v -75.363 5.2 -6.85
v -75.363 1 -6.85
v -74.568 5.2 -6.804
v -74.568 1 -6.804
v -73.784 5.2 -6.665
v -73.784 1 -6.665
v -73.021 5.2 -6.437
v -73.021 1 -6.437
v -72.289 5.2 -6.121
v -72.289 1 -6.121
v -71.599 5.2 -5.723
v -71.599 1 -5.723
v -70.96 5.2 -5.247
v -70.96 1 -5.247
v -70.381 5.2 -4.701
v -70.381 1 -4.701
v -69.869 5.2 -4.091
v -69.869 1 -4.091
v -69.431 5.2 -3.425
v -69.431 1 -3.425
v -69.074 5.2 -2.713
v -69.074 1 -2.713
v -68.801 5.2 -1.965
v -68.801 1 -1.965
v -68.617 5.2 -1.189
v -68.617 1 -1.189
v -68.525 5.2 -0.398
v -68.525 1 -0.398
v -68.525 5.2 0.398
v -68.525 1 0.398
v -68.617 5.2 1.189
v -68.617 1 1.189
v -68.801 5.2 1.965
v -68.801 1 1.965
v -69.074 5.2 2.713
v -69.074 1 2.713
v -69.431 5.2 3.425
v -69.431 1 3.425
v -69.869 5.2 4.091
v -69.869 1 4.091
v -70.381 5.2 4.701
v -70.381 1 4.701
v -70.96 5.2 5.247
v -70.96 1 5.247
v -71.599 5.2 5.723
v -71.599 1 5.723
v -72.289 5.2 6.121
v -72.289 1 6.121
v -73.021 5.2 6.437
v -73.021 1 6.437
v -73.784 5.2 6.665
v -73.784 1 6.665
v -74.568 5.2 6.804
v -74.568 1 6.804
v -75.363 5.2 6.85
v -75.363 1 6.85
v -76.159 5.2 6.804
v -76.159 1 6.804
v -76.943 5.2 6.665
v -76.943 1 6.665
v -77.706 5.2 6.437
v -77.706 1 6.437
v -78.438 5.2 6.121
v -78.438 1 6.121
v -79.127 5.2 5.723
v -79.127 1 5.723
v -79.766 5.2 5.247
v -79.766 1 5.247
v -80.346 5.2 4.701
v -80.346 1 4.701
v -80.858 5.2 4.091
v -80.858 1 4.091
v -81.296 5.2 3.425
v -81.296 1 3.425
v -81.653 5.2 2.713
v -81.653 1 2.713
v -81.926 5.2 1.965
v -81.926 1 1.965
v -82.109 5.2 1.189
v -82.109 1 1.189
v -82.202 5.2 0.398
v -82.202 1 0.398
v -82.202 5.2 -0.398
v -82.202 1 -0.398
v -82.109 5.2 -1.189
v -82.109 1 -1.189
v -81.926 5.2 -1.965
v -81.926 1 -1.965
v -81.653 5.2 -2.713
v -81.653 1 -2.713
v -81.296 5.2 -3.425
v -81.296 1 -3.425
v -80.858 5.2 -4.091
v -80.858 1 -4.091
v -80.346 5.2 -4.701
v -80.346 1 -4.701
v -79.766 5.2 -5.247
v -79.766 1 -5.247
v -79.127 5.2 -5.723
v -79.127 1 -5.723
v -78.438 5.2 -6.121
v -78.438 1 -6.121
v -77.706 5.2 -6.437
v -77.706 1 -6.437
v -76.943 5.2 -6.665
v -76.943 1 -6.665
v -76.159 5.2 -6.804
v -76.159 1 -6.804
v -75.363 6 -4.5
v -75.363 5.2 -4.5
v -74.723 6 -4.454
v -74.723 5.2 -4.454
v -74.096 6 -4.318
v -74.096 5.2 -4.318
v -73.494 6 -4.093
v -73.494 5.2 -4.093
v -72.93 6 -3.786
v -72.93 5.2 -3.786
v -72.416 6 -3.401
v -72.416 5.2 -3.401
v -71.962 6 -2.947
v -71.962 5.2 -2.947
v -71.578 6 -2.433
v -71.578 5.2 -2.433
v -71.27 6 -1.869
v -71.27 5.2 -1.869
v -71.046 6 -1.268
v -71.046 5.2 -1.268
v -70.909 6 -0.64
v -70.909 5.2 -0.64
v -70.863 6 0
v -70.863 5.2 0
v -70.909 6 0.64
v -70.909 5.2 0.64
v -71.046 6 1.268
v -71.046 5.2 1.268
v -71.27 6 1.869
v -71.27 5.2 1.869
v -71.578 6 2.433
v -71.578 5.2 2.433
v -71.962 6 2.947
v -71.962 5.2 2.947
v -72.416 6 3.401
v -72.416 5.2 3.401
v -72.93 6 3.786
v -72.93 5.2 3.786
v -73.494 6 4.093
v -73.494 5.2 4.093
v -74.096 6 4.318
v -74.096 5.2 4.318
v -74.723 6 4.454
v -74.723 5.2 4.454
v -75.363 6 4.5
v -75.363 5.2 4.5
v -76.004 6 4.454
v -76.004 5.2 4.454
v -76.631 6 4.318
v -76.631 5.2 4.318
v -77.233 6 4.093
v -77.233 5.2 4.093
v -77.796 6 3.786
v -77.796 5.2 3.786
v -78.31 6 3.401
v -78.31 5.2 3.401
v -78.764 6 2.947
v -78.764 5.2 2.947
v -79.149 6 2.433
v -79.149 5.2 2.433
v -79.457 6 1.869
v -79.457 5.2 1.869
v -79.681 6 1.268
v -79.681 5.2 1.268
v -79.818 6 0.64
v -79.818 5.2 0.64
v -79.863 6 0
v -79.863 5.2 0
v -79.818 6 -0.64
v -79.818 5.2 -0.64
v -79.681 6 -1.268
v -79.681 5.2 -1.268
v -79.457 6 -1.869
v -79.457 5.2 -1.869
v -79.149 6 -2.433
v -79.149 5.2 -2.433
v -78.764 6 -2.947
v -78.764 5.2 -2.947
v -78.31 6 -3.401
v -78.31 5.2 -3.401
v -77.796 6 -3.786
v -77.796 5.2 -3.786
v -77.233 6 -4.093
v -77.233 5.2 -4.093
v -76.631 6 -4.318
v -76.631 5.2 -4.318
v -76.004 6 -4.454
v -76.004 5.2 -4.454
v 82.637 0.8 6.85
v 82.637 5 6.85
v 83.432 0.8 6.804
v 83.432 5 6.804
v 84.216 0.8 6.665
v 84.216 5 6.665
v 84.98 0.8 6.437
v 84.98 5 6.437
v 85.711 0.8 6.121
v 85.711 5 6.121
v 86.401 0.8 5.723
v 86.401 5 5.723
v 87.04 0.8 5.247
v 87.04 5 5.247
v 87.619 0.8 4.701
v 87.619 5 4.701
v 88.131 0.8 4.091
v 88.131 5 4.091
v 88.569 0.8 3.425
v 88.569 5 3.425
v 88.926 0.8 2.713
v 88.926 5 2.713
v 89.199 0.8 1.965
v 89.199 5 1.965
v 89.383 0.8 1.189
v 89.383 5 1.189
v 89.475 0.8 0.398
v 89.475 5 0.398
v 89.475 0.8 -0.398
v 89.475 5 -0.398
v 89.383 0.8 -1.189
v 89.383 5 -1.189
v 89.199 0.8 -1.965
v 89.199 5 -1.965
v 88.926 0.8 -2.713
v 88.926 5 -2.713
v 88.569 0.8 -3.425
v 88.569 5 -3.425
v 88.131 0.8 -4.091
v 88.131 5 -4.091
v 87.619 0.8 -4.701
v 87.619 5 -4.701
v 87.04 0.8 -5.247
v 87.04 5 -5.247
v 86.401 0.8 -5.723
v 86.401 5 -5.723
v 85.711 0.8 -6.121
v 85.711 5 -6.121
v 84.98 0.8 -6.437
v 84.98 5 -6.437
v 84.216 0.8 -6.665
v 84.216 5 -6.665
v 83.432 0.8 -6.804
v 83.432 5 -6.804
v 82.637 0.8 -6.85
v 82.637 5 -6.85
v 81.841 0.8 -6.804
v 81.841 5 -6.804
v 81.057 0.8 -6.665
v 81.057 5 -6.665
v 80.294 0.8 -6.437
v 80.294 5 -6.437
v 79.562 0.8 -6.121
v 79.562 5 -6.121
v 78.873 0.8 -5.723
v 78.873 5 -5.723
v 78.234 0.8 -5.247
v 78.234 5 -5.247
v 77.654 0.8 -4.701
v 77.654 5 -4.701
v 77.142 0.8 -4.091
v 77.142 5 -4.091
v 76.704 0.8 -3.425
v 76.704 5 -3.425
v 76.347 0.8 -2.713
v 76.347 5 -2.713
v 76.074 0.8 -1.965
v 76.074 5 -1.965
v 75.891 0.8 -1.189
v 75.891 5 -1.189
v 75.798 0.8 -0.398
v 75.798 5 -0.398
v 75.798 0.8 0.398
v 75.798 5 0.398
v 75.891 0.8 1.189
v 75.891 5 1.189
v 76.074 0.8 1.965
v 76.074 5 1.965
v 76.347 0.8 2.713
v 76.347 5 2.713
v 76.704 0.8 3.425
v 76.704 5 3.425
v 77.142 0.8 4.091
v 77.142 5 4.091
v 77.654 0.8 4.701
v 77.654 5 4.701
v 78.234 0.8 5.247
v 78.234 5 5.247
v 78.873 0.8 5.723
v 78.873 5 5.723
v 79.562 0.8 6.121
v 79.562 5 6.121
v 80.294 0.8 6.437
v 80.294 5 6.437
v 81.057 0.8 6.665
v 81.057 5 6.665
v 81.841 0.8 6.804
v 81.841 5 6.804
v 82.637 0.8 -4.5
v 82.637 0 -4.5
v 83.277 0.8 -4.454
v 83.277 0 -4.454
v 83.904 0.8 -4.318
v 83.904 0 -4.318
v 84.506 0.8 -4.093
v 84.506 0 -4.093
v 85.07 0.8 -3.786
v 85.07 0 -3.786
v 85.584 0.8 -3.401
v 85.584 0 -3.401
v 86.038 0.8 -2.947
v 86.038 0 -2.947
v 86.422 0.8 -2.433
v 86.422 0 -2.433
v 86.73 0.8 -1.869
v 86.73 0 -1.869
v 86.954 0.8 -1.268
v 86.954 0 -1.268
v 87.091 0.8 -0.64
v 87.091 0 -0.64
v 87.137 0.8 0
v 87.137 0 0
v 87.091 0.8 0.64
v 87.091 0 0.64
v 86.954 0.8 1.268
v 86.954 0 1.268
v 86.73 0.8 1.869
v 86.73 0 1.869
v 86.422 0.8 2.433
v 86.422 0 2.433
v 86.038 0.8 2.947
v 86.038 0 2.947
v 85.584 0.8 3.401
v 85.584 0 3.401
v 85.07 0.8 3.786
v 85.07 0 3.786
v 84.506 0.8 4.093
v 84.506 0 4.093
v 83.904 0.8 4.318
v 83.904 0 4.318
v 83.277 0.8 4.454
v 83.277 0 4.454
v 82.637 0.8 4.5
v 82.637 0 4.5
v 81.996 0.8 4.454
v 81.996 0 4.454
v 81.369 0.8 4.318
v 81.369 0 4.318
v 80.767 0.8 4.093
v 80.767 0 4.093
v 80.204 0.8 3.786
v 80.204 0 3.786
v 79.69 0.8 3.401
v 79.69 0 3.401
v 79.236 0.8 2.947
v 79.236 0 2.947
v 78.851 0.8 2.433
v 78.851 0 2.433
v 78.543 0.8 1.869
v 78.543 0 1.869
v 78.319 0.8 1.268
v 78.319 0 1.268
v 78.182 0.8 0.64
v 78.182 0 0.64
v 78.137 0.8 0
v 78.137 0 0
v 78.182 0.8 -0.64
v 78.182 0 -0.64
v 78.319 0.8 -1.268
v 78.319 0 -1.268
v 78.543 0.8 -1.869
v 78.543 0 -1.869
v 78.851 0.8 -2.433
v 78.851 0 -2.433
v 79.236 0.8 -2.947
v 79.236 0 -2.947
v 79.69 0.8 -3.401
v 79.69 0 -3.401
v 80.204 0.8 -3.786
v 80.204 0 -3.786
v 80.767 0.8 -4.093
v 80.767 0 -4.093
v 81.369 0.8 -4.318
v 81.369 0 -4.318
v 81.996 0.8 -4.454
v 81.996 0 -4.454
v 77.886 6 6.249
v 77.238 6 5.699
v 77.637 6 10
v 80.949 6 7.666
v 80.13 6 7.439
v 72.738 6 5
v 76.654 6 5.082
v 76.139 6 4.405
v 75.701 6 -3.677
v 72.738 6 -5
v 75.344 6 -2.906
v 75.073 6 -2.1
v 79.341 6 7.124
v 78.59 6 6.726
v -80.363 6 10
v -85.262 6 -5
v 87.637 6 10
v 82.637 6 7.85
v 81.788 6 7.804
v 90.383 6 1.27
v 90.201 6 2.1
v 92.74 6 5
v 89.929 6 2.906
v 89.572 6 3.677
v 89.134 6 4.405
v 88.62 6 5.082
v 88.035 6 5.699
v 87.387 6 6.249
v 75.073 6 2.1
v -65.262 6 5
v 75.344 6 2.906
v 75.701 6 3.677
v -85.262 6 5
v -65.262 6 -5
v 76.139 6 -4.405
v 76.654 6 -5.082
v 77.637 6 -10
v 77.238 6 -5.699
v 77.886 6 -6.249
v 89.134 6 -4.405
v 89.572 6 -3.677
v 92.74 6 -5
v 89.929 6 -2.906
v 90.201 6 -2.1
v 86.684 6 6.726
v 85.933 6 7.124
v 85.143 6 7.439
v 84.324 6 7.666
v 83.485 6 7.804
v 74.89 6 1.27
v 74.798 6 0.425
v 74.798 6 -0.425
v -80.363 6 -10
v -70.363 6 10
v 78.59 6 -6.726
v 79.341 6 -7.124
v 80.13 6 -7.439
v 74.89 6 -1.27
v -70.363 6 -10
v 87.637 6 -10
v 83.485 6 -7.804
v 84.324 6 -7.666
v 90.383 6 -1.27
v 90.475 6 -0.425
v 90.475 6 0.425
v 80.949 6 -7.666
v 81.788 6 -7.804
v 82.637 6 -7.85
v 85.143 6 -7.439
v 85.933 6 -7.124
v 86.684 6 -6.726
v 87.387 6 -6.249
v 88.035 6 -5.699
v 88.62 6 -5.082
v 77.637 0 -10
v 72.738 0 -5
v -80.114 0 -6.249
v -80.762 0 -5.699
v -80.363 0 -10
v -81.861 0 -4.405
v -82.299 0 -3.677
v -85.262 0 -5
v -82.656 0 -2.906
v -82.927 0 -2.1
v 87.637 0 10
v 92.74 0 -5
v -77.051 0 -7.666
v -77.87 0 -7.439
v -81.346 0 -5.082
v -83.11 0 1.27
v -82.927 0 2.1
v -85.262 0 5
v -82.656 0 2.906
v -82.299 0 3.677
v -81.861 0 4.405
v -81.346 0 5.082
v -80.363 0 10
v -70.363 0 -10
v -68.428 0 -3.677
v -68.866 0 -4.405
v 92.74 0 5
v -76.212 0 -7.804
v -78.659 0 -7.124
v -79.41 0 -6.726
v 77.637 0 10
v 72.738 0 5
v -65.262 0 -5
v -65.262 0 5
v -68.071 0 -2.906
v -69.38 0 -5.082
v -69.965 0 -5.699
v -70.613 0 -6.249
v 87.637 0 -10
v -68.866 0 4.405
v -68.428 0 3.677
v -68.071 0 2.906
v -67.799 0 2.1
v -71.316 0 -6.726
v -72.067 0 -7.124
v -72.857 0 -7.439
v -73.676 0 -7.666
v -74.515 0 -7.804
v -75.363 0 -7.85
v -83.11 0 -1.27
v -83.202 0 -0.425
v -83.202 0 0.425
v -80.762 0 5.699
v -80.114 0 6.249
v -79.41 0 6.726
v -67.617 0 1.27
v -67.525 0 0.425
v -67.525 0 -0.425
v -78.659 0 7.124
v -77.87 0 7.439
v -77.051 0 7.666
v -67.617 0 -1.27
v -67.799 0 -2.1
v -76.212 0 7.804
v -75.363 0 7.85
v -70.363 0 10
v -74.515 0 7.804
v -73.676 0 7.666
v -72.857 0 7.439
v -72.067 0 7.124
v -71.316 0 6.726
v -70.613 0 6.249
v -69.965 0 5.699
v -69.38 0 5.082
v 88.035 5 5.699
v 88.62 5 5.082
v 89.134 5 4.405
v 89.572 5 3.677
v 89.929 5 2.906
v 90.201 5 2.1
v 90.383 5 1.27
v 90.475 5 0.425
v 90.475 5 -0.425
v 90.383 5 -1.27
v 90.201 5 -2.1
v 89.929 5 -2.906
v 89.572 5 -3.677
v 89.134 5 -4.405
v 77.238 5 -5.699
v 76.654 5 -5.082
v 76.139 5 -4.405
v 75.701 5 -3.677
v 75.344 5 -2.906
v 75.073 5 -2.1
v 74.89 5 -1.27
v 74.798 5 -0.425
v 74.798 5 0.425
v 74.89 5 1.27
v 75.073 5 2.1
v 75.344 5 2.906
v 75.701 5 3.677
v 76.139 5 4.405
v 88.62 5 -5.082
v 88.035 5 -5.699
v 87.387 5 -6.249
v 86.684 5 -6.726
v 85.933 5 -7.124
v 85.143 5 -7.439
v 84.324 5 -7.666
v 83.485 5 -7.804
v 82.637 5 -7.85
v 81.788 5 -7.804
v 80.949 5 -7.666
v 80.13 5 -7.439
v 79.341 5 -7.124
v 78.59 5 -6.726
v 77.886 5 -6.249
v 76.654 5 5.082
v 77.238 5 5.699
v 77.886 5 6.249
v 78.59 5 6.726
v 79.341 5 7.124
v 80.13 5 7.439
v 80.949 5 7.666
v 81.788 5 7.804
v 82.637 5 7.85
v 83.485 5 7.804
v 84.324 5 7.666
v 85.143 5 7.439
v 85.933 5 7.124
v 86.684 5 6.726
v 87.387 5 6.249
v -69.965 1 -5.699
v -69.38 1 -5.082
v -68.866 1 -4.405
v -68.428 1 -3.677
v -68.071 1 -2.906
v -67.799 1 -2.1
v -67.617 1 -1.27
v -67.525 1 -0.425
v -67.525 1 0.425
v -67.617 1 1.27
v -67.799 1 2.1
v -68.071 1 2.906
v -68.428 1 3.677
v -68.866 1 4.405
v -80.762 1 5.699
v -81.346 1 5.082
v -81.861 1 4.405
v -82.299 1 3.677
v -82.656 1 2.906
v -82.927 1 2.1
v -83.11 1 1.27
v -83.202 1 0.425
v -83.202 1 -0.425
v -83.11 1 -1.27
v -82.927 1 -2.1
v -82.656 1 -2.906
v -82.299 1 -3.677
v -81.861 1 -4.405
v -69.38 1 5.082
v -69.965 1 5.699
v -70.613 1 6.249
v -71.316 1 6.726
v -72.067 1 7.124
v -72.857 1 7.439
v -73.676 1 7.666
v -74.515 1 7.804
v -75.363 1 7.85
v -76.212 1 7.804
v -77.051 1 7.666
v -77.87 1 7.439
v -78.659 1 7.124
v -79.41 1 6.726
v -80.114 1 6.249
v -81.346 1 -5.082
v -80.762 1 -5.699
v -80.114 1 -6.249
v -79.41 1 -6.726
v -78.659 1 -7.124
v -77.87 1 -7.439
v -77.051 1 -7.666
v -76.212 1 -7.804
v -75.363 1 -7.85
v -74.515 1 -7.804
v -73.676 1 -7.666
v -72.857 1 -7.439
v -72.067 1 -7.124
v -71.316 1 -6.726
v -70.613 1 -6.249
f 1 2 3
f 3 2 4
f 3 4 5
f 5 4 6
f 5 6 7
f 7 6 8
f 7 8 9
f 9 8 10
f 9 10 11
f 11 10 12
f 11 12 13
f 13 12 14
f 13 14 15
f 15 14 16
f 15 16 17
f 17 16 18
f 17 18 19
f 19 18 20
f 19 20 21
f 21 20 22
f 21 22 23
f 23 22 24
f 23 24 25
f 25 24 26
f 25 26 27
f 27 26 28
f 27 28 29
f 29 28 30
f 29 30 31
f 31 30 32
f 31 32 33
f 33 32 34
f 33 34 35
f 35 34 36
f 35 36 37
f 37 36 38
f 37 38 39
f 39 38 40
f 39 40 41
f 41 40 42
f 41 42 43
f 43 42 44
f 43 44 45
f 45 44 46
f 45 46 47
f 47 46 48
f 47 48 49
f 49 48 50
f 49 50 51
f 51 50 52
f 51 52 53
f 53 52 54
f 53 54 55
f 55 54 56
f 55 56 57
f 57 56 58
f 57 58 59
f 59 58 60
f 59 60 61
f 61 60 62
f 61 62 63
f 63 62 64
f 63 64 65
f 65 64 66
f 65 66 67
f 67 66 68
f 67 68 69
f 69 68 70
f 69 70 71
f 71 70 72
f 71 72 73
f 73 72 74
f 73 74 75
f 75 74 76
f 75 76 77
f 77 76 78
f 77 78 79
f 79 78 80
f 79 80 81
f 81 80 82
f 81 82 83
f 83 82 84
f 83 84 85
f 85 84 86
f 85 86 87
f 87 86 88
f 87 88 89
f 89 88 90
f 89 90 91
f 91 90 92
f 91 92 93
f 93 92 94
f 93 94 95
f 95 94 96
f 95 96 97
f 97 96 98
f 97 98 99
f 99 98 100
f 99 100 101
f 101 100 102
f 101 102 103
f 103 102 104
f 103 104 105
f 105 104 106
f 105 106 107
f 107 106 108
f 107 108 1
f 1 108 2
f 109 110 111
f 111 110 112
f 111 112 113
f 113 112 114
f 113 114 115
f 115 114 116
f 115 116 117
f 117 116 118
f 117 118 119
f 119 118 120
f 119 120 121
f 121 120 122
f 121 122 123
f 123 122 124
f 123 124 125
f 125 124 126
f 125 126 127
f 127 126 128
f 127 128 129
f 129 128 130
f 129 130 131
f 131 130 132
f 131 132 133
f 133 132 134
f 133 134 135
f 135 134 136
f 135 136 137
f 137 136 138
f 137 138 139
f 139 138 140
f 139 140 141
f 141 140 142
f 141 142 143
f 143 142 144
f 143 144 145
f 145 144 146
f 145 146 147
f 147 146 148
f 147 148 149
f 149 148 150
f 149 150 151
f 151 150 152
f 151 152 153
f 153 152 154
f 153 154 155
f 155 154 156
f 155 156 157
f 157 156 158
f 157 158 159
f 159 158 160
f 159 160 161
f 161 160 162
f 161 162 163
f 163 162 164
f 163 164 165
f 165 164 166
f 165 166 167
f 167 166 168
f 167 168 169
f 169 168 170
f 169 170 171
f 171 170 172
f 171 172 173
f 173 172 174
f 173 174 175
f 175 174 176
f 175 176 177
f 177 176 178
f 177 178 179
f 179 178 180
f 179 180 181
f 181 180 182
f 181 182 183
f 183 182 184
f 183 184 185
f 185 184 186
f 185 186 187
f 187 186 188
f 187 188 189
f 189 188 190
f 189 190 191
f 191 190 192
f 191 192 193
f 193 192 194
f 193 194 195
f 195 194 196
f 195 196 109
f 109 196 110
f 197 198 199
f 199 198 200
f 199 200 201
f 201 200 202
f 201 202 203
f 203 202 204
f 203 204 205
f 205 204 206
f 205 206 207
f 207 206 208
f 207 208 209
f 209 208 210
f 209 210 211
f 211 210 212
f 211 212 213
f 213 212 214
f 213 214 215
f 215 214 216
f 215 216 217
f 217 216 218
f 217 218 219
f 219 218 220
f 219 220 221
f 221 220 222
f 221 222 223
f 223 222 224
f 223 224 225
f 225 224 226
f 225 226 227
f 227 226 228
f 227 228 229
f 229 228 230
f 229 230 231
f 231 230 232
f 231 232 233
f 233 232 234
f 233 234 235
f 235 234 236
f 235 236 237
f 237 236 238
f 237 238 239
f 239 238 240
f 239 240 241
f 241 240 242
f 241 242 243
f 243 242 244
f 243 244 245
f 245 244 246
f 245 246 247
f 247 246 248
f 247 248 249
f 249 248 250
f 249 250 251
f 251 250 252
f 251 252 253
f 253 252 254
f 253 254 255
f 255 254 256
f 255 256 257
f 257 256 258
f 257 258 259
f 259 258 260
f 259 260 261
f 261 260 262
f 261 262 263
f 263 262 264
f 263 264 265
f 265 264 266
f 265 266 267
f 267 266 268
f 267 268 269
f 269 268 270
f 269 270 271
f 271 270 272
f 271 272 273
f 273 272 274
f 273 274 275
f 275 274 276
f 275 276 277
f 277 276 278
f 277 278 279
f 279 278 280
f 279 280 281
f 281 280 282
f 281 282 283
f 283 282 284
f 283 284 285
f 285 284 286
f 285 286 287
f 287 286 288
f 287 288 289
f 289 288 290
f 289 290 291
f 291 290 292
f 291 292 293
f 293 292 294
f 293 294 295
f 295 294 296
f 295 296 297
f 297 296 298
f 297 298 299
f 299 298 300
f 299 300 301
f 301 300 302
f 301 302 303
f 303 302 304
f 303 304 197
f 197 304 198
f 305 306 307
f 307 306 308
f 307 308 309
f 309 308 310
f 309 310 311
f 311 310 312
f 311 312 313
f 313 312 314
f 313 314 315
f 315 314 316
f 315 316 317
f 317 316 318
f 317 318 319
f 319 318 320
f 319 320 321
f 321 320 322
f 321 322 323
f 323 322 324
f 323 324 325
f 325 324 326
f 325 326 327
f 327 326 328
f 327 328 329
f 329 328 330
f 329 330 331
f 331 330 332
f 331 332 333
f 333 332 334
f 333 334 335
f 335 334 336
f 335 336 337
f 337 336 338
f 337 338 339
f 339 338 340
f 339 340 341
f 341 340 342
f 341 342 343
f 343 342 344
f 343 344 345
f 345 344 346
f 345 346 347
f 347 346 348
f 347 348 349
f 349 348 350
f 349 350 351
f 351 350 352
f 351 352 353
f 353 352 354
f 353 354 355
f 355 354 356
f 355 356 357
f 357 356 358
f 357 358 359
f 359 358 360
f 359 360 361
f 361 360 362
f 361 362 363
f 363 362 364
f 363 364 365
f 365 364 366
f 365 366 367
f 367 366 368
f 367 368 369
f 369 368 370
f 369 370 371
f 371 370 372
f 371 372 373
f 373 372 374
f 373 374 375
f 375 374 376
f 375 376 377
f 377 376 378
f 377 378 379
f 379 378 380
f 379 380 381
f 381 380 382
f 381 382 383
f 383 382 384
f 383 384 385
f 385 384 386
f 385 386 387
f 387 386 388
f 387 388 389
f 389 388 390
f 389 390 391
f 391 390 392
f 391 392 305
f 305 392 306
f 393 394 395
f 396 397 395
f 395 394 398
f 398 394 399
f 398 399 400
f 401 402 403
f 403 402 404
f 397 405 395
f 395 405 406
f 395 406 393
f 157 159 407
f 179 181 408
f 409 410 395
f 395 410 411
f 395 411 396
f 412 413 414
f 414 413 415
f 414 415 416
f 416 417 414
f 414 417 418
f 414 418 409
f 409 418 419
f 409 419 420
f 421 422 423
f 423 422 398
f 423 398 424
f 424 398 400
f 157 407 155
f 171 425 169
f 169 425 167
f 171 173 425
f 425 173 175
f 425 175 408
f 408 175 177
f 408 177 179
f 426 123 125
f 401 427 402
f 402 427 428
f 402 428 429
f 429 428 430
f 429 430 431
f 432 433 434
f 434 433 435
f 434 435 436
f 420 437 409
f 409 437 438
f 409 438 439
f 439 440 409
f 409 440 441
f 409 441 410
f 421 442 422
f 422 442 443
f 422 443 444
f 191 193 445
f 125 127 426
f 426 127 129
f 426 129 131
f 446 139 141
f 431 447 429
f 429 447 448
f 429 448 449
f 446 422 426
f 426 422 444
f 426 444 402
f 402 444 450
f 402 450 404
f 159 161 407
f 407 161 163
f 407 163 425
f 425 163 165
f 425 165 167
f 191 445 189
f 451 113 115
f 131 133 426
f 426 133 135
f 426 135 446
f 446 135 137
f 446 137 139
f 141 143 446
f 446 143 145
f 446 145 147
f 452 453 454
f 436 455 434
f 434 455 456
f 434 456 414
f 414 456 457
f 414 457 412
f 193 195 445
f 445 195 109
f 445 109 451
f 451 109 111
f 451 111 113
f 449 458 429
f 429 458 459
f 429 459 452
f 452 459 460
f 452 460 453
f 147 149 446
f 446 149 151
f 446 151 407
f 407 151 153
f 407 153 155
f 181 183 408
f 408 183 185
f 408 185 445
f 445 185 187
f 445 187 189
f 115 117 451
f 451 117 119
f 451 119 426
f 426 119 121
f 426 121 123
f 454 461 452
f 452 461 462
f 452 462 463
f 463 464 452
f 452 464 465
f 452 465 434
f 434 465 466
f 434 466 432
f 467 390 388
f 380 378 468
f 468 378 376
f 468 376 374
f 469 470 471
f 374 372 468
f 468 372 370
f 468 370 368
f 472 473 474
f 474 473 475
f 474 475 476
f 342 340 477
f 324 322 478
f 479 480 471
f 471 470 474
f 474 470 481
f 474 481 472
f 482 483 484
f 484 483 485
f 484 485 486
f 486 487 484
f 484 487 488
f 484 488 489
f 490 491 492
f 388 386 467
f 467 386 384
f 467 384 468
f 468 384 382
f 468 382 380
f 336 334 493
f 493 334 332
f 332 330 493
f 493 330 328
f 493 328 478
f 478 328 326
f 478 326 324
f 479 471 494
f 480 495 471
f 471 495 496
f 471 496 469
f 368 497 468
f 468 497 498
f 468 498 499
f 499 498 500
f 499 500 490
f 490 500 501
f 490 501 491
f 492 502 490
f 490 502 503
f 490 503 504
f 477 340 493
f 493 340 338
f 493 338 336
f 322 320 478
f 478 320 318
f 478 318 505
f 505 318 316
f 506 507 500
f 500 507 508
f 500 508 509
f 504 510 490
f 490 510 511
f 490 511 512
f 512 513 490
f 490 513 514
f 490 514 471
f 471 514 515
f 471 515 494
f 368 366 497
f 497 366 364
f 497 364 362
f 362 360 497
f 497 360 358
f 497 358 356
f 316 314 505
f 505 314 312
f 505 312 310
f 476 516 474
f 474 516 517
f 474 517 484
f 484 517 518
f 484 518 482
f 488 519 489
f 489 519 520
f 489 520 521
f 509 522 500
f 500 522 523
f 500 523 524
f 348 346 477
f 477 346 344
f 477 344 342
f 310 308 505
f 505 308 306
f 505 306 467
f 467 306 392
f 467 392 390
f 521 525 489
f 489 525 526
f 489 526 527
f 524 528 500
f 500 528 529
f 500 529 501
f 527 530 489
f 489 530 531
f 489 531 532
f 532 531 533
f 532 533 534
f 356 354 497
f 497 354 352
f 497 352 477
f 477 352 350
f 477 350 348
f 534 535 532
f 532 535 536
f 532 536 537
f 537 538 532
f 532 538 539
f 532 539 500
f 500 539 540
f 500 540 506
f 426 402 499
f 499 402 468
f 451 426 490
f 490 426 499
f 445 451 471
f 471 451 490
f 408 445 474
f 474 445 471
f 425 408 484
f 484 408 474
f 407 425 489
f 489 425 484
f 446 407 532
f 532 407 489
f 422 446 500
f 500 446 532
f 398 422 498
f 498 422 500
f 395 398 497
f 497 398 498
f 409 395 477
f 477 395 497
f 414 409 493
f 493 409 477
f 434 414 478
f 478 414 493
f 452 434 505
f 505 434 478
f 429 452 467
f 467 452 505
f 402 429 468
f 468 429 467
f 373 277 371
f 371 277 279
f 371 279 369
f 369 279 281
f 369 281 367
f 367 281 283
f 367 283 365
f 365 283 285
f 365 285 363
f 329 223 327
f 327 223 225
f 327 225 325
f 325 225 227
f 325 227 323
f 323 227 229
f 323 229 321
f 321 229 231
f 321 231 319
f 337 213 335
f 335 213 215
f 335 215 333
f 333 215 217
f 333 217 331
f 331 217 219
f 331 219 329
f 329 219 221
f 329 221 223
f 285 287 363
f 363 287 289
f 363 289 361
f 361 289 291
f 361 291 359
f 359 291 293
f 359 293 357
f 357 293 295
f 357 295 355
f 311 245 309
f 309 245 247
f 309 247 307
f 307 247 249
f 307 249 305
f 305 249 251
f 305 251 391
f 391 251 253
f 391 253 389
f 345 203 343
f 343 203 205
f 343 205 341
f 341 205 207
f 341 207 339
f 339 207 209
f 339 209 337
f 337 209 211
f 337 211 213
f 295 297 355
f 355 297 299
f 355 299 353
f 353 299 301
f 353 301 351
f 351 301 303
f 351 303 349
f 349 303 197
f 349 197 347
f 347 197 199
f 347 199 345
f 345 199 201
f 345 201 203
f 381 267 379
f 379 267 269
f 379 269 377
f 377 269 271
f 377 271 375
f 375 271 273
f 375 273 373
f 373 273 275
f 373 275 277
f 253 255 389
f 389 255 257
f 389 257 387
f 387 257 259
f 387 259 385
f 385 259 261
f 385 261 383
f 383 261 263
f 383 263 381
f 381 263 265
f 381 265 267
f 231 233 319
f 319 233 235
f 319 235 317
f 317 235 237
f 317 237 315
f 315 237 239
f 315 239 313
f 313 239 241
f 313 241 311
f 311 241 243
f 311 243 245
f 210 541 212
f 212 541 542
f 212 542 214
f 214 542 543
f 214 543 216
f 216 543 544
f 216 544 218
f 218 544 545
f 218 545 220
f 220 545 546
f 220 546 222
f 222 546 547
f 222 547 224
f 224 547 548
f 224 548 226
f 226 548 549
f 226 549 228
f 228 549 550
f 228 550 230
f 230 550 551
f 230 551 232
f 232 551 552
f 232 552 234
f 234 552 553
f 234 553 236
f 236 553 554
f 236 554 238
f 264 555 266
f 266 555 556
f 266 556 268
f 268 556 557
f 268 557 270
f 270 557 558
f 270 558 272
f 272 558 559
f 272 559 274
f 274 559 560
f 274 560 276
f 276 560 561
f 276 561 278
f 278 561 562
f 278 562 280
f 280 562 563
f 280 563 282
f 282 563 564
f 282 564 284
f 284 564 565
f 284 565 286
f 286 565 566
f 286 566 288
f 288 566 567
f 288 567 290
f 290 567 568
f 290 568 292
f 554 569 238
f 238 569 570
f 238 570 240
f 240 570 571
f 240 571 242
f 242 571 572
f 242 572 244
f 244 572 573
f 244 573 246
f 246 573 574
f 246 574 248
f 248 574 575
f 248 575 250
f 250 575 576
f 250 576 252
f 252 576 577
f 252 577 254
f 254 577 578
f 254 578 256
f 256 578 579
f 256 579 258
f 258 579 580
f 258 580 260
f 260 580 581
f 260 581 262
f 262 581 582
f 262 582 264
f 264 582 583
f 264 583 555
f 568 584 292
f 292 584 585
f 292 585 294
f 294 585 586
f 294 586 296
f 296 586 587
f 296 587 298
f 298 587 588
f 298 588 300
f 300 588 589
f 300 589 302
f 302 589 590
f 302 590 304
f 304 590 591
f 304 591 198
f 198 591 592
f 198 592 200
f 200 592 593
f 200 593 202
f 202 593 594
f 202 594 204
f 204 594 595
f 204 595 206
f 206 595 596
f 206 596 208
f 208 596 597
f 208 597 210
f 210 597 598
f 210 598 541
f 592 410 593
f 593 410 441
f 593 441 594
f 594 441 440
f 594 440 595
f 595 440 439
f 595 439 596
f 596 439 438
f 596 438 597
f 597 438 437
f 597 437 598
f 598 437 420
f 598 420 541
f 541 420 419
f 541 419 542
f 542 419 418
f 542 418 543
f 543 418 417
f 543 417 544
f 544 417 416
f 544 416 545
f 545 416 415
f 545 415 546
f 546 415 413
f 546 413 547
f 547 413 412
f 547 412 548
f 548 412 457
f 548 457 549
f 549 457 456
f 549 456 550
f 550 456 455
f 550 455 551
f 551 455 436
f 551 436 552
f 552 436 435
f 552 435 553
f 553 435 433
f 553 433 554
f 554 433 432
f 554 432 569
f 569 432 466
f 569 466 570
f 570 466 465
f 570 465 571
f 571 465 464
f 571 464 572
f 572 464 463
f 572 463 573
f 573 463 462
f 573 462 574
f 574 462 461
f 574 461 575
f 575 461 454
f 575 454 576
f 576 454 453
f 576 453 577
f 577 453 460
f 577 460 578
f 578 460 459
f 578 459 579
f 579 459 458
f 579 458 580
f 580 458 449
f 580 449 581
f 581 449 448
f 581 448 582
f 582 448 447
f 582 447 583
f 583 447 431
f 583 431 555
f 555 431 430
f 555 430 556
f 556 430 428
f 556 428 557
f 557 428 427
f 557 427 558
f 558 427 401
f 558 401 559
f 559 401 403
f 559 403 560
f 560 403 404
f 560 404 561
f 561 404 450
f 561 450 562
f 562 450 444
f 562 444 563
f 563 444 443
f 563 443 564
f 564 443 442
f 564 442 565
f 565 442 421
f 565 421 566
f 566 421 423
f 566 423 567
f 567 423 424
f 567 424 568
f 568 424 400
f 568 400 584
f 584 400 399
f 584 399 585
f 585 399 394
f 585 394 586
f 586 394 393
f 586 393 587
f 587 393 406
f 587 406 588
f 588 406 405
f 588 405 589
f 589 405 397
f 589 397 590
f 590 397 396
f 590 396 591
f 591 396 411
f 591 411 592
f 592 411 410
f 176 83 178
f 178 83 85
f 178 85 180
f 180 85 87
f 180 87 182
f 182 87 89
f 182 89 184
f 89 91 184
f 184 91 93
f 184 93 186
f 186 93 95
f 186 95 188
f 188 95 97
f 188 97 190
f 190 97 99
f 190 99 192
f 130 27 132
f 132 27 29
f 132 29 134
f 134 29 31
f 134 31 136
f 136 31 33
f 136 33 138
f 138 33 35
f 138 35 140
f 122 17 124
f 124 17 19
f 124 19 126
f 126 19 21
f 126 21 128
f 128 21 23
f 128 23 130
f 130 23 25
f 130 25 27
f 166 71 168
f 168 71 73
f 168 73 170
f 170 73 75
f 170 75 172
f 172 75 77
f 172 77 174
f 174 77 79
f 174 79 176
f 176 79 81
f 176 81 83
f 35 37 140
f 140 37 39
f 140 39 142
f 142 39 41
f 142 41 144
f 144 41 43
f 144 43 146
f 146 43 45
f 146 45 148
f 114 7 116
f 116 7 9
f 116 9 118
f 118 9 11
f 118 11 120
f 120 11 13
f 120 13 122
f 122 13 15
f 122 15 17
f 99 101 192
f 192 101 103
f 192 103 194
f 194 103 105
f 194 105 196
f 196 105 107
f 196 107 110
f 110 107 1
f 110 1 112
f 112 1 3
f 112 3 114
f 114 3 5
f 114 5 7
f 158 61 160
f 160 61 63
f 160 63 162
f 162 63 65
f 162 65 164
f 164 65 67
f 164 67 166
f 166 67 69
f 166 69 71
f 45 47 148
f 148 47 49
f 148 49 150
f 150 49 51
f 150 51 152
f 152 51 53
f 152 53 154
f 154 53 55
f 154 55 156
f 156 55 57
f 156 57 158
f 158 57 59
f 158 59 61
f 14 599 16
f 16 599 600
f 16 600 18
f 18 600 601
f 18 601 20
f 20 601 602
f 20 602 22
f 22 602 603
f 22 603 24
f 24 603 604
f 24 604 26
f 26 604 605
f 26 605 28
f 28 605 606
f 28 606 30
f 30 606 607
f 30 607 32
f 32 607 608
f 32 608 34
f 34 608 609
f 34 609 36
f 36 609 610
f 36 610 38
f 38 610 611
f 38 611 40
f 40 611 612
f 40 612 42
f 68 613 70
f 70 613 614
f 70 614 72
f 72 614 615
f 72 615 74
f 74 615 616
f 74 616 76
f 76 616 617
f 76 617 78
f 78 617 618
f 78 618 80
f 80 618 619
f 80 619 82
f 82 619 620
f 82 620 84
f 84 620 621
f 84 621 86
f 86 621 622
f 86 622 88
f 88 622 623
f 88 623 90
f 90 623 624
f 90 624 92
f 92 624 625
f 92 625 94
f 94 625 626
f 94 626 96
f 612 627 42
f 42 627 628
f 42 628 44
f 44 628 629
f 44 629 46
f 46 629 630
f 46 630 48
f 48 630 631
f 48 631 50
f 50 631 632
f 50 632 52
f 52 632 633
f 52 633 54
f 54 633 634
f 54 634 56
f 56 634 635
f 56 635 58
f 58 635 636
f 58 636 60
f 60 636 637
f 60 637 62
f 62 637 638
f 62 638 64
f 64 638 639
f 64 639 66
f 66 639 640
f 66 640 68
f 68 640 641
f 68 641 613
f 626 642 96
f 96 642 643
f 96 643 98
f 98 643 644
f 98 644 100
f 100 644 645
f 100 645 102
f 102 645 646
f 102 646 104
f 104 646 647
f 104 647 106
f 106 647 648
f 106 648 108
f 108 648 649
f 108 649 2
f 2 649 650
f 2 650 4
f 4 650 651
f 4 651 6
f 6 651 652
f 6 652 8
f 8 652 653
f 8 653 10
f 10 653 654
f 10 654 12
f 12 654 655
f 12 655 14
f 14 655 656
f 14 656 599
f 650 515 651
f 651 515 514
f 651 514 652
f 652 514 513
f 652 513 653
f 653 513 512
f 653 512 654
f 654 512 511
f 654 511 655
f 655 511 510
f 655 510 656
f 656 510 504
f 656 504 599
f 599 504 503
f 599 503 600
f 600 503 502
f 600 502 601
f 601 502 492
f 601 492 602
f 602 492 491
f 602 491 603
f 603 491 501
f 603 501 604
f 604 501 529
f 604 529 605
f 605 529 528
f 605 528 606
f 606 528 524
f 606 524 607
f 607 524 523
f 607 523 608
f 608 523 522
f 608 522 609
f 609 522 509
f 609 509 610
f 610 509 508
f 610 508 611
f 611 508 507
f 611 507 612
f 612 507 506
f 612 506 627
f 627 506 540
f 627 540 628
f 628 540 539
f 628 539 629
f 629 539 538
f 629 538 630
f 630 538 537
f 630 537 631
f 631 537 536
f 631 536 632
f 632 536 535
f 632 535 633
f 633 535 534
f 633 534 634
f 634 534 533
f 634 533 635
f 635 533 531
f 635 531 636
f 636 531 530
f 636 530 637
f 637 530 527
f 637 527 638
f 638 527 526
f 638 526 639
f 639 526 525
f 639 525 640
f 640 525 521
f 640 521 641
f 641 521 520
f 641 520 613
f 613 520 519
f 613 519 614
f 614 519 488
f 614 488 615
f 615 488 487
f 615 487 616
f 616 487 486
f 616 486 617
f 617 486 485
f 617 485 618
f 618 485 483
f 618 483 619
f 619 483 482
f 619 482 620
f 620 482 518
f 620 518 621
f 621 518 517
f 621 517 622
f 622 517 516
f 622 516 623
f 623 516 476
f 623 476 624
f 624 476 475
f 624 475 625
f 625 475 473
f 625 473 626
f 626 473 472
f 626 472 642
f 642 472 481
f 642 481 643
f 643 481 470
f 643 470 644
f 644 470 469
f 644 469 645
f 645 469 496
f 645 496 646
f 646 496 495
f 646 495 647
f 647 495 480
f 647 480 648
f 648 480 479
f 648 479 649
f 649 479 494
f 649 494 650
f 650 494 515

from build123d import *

# Parameters (mm, degrees)
SKETCH_1_R          = 4.5
EXTRUDE_1_DEPTH     = 6
SKETCH_2_R          = 6.85
CUT_EXTRUDE_1_DEPTH = 5.2
SKETCH_3_R          = 7.85
CUT_EXTRUDE_2_DEPTH = 1
SKETCH_5_R          = 6.85
CUT_EXTRUDE_3_DEPTH = 5.2
SKETCH_6_R          = 7.85
CUT_EXTRUDE_4_DEPTH = 1


with BuildPart() as part:
    # 草图1 → 凸台-拉伸1 (new body)
    with BuildSketch(Plane(origin=(0, 0, 0), x_dir=(1, 0, 0), z_dir=(0, 1, 0))):
        Polygon((-65.26232397, 5), (-70.363344484, 10), (-80.363344484, 10), (-85.26232397, 5), (-85.26232397, -5), (-80.363344484, -10), (-70.363344484, -10), (-65.26232397, -5), (72.73767603, -5), (77.636655516, -10), (87.636655516, -10), (92.739759147, -5), (92.739759147, 5), (87.636655516, 10), (77.636655516, 10), (72.73767603, 5), align=None)
        with Locations(Location((-75.363344484, 0, 0), (0, 0, 270))):
            Circle(SKETCH_1_R, mode=Mode.SUBTRACT)
        with Locations(Location((82.636655516, 0, 0), (0, 0, 270))):
            Circle(SKETCH_1_R, mode=Mode.SUBTRACT)
    extrude(amount=EXTRUDE_1_DEPTH)

    # 草图2 → 切除-拉伸1 (cut)
    with BuildSketch(Plane(origin=(0, 6, 0), x_dir=(1, 0, 0), z_dir=(0, 1, 0))):
        with Locations(Location((82.636655516, 0, 0), (0, 0, 270))):
            Circle(SKETCH_2_R)
    extrude(amount=-CUT_EXTRUDE_1_DEPTH, mode=Mode.SUBTRACT)

    # 草图3 → 切除-拉伸2 (cut)
    with BuildSketch(Plane(origin=(0, 6, 0), x_dir=(1, 0, 0), z_dir=(0, 1, 0))):
        with Locations(Location((82.636655516, 0, 0), (0, 0, 270))):
            Circle(SKETCH_3_R)
    extrude(amount=-CUT_EXTRUDE_2_DEPTH, mode=Mode.SUBTRACT)

    # 草图5 → 切除-拉伸3 (cut)
    with BuildSketch(Plane.XZ):
        with Locations(Location((-75.363344484, 0, 0), (0, 0, 270))):
            Circle(SKETCH_5_R)
    extrude(amount=-CUT_EXTRUDE_3_DEPTH, mode=Mode.SUBTRACT)

    # 草图6 → 切除-拉伸4 (cut)
    with BuildSketch(Plane.XZ):
        with Locations(Location((-75.363344484, 0, 0), (0, 0, 270))):
            Circle(SKETCH_6_R)
    extrude(amount=-CUT_EXTRUDE_4_DEPTH, mode=Mode.SUBTRACT)


solid = part.part
